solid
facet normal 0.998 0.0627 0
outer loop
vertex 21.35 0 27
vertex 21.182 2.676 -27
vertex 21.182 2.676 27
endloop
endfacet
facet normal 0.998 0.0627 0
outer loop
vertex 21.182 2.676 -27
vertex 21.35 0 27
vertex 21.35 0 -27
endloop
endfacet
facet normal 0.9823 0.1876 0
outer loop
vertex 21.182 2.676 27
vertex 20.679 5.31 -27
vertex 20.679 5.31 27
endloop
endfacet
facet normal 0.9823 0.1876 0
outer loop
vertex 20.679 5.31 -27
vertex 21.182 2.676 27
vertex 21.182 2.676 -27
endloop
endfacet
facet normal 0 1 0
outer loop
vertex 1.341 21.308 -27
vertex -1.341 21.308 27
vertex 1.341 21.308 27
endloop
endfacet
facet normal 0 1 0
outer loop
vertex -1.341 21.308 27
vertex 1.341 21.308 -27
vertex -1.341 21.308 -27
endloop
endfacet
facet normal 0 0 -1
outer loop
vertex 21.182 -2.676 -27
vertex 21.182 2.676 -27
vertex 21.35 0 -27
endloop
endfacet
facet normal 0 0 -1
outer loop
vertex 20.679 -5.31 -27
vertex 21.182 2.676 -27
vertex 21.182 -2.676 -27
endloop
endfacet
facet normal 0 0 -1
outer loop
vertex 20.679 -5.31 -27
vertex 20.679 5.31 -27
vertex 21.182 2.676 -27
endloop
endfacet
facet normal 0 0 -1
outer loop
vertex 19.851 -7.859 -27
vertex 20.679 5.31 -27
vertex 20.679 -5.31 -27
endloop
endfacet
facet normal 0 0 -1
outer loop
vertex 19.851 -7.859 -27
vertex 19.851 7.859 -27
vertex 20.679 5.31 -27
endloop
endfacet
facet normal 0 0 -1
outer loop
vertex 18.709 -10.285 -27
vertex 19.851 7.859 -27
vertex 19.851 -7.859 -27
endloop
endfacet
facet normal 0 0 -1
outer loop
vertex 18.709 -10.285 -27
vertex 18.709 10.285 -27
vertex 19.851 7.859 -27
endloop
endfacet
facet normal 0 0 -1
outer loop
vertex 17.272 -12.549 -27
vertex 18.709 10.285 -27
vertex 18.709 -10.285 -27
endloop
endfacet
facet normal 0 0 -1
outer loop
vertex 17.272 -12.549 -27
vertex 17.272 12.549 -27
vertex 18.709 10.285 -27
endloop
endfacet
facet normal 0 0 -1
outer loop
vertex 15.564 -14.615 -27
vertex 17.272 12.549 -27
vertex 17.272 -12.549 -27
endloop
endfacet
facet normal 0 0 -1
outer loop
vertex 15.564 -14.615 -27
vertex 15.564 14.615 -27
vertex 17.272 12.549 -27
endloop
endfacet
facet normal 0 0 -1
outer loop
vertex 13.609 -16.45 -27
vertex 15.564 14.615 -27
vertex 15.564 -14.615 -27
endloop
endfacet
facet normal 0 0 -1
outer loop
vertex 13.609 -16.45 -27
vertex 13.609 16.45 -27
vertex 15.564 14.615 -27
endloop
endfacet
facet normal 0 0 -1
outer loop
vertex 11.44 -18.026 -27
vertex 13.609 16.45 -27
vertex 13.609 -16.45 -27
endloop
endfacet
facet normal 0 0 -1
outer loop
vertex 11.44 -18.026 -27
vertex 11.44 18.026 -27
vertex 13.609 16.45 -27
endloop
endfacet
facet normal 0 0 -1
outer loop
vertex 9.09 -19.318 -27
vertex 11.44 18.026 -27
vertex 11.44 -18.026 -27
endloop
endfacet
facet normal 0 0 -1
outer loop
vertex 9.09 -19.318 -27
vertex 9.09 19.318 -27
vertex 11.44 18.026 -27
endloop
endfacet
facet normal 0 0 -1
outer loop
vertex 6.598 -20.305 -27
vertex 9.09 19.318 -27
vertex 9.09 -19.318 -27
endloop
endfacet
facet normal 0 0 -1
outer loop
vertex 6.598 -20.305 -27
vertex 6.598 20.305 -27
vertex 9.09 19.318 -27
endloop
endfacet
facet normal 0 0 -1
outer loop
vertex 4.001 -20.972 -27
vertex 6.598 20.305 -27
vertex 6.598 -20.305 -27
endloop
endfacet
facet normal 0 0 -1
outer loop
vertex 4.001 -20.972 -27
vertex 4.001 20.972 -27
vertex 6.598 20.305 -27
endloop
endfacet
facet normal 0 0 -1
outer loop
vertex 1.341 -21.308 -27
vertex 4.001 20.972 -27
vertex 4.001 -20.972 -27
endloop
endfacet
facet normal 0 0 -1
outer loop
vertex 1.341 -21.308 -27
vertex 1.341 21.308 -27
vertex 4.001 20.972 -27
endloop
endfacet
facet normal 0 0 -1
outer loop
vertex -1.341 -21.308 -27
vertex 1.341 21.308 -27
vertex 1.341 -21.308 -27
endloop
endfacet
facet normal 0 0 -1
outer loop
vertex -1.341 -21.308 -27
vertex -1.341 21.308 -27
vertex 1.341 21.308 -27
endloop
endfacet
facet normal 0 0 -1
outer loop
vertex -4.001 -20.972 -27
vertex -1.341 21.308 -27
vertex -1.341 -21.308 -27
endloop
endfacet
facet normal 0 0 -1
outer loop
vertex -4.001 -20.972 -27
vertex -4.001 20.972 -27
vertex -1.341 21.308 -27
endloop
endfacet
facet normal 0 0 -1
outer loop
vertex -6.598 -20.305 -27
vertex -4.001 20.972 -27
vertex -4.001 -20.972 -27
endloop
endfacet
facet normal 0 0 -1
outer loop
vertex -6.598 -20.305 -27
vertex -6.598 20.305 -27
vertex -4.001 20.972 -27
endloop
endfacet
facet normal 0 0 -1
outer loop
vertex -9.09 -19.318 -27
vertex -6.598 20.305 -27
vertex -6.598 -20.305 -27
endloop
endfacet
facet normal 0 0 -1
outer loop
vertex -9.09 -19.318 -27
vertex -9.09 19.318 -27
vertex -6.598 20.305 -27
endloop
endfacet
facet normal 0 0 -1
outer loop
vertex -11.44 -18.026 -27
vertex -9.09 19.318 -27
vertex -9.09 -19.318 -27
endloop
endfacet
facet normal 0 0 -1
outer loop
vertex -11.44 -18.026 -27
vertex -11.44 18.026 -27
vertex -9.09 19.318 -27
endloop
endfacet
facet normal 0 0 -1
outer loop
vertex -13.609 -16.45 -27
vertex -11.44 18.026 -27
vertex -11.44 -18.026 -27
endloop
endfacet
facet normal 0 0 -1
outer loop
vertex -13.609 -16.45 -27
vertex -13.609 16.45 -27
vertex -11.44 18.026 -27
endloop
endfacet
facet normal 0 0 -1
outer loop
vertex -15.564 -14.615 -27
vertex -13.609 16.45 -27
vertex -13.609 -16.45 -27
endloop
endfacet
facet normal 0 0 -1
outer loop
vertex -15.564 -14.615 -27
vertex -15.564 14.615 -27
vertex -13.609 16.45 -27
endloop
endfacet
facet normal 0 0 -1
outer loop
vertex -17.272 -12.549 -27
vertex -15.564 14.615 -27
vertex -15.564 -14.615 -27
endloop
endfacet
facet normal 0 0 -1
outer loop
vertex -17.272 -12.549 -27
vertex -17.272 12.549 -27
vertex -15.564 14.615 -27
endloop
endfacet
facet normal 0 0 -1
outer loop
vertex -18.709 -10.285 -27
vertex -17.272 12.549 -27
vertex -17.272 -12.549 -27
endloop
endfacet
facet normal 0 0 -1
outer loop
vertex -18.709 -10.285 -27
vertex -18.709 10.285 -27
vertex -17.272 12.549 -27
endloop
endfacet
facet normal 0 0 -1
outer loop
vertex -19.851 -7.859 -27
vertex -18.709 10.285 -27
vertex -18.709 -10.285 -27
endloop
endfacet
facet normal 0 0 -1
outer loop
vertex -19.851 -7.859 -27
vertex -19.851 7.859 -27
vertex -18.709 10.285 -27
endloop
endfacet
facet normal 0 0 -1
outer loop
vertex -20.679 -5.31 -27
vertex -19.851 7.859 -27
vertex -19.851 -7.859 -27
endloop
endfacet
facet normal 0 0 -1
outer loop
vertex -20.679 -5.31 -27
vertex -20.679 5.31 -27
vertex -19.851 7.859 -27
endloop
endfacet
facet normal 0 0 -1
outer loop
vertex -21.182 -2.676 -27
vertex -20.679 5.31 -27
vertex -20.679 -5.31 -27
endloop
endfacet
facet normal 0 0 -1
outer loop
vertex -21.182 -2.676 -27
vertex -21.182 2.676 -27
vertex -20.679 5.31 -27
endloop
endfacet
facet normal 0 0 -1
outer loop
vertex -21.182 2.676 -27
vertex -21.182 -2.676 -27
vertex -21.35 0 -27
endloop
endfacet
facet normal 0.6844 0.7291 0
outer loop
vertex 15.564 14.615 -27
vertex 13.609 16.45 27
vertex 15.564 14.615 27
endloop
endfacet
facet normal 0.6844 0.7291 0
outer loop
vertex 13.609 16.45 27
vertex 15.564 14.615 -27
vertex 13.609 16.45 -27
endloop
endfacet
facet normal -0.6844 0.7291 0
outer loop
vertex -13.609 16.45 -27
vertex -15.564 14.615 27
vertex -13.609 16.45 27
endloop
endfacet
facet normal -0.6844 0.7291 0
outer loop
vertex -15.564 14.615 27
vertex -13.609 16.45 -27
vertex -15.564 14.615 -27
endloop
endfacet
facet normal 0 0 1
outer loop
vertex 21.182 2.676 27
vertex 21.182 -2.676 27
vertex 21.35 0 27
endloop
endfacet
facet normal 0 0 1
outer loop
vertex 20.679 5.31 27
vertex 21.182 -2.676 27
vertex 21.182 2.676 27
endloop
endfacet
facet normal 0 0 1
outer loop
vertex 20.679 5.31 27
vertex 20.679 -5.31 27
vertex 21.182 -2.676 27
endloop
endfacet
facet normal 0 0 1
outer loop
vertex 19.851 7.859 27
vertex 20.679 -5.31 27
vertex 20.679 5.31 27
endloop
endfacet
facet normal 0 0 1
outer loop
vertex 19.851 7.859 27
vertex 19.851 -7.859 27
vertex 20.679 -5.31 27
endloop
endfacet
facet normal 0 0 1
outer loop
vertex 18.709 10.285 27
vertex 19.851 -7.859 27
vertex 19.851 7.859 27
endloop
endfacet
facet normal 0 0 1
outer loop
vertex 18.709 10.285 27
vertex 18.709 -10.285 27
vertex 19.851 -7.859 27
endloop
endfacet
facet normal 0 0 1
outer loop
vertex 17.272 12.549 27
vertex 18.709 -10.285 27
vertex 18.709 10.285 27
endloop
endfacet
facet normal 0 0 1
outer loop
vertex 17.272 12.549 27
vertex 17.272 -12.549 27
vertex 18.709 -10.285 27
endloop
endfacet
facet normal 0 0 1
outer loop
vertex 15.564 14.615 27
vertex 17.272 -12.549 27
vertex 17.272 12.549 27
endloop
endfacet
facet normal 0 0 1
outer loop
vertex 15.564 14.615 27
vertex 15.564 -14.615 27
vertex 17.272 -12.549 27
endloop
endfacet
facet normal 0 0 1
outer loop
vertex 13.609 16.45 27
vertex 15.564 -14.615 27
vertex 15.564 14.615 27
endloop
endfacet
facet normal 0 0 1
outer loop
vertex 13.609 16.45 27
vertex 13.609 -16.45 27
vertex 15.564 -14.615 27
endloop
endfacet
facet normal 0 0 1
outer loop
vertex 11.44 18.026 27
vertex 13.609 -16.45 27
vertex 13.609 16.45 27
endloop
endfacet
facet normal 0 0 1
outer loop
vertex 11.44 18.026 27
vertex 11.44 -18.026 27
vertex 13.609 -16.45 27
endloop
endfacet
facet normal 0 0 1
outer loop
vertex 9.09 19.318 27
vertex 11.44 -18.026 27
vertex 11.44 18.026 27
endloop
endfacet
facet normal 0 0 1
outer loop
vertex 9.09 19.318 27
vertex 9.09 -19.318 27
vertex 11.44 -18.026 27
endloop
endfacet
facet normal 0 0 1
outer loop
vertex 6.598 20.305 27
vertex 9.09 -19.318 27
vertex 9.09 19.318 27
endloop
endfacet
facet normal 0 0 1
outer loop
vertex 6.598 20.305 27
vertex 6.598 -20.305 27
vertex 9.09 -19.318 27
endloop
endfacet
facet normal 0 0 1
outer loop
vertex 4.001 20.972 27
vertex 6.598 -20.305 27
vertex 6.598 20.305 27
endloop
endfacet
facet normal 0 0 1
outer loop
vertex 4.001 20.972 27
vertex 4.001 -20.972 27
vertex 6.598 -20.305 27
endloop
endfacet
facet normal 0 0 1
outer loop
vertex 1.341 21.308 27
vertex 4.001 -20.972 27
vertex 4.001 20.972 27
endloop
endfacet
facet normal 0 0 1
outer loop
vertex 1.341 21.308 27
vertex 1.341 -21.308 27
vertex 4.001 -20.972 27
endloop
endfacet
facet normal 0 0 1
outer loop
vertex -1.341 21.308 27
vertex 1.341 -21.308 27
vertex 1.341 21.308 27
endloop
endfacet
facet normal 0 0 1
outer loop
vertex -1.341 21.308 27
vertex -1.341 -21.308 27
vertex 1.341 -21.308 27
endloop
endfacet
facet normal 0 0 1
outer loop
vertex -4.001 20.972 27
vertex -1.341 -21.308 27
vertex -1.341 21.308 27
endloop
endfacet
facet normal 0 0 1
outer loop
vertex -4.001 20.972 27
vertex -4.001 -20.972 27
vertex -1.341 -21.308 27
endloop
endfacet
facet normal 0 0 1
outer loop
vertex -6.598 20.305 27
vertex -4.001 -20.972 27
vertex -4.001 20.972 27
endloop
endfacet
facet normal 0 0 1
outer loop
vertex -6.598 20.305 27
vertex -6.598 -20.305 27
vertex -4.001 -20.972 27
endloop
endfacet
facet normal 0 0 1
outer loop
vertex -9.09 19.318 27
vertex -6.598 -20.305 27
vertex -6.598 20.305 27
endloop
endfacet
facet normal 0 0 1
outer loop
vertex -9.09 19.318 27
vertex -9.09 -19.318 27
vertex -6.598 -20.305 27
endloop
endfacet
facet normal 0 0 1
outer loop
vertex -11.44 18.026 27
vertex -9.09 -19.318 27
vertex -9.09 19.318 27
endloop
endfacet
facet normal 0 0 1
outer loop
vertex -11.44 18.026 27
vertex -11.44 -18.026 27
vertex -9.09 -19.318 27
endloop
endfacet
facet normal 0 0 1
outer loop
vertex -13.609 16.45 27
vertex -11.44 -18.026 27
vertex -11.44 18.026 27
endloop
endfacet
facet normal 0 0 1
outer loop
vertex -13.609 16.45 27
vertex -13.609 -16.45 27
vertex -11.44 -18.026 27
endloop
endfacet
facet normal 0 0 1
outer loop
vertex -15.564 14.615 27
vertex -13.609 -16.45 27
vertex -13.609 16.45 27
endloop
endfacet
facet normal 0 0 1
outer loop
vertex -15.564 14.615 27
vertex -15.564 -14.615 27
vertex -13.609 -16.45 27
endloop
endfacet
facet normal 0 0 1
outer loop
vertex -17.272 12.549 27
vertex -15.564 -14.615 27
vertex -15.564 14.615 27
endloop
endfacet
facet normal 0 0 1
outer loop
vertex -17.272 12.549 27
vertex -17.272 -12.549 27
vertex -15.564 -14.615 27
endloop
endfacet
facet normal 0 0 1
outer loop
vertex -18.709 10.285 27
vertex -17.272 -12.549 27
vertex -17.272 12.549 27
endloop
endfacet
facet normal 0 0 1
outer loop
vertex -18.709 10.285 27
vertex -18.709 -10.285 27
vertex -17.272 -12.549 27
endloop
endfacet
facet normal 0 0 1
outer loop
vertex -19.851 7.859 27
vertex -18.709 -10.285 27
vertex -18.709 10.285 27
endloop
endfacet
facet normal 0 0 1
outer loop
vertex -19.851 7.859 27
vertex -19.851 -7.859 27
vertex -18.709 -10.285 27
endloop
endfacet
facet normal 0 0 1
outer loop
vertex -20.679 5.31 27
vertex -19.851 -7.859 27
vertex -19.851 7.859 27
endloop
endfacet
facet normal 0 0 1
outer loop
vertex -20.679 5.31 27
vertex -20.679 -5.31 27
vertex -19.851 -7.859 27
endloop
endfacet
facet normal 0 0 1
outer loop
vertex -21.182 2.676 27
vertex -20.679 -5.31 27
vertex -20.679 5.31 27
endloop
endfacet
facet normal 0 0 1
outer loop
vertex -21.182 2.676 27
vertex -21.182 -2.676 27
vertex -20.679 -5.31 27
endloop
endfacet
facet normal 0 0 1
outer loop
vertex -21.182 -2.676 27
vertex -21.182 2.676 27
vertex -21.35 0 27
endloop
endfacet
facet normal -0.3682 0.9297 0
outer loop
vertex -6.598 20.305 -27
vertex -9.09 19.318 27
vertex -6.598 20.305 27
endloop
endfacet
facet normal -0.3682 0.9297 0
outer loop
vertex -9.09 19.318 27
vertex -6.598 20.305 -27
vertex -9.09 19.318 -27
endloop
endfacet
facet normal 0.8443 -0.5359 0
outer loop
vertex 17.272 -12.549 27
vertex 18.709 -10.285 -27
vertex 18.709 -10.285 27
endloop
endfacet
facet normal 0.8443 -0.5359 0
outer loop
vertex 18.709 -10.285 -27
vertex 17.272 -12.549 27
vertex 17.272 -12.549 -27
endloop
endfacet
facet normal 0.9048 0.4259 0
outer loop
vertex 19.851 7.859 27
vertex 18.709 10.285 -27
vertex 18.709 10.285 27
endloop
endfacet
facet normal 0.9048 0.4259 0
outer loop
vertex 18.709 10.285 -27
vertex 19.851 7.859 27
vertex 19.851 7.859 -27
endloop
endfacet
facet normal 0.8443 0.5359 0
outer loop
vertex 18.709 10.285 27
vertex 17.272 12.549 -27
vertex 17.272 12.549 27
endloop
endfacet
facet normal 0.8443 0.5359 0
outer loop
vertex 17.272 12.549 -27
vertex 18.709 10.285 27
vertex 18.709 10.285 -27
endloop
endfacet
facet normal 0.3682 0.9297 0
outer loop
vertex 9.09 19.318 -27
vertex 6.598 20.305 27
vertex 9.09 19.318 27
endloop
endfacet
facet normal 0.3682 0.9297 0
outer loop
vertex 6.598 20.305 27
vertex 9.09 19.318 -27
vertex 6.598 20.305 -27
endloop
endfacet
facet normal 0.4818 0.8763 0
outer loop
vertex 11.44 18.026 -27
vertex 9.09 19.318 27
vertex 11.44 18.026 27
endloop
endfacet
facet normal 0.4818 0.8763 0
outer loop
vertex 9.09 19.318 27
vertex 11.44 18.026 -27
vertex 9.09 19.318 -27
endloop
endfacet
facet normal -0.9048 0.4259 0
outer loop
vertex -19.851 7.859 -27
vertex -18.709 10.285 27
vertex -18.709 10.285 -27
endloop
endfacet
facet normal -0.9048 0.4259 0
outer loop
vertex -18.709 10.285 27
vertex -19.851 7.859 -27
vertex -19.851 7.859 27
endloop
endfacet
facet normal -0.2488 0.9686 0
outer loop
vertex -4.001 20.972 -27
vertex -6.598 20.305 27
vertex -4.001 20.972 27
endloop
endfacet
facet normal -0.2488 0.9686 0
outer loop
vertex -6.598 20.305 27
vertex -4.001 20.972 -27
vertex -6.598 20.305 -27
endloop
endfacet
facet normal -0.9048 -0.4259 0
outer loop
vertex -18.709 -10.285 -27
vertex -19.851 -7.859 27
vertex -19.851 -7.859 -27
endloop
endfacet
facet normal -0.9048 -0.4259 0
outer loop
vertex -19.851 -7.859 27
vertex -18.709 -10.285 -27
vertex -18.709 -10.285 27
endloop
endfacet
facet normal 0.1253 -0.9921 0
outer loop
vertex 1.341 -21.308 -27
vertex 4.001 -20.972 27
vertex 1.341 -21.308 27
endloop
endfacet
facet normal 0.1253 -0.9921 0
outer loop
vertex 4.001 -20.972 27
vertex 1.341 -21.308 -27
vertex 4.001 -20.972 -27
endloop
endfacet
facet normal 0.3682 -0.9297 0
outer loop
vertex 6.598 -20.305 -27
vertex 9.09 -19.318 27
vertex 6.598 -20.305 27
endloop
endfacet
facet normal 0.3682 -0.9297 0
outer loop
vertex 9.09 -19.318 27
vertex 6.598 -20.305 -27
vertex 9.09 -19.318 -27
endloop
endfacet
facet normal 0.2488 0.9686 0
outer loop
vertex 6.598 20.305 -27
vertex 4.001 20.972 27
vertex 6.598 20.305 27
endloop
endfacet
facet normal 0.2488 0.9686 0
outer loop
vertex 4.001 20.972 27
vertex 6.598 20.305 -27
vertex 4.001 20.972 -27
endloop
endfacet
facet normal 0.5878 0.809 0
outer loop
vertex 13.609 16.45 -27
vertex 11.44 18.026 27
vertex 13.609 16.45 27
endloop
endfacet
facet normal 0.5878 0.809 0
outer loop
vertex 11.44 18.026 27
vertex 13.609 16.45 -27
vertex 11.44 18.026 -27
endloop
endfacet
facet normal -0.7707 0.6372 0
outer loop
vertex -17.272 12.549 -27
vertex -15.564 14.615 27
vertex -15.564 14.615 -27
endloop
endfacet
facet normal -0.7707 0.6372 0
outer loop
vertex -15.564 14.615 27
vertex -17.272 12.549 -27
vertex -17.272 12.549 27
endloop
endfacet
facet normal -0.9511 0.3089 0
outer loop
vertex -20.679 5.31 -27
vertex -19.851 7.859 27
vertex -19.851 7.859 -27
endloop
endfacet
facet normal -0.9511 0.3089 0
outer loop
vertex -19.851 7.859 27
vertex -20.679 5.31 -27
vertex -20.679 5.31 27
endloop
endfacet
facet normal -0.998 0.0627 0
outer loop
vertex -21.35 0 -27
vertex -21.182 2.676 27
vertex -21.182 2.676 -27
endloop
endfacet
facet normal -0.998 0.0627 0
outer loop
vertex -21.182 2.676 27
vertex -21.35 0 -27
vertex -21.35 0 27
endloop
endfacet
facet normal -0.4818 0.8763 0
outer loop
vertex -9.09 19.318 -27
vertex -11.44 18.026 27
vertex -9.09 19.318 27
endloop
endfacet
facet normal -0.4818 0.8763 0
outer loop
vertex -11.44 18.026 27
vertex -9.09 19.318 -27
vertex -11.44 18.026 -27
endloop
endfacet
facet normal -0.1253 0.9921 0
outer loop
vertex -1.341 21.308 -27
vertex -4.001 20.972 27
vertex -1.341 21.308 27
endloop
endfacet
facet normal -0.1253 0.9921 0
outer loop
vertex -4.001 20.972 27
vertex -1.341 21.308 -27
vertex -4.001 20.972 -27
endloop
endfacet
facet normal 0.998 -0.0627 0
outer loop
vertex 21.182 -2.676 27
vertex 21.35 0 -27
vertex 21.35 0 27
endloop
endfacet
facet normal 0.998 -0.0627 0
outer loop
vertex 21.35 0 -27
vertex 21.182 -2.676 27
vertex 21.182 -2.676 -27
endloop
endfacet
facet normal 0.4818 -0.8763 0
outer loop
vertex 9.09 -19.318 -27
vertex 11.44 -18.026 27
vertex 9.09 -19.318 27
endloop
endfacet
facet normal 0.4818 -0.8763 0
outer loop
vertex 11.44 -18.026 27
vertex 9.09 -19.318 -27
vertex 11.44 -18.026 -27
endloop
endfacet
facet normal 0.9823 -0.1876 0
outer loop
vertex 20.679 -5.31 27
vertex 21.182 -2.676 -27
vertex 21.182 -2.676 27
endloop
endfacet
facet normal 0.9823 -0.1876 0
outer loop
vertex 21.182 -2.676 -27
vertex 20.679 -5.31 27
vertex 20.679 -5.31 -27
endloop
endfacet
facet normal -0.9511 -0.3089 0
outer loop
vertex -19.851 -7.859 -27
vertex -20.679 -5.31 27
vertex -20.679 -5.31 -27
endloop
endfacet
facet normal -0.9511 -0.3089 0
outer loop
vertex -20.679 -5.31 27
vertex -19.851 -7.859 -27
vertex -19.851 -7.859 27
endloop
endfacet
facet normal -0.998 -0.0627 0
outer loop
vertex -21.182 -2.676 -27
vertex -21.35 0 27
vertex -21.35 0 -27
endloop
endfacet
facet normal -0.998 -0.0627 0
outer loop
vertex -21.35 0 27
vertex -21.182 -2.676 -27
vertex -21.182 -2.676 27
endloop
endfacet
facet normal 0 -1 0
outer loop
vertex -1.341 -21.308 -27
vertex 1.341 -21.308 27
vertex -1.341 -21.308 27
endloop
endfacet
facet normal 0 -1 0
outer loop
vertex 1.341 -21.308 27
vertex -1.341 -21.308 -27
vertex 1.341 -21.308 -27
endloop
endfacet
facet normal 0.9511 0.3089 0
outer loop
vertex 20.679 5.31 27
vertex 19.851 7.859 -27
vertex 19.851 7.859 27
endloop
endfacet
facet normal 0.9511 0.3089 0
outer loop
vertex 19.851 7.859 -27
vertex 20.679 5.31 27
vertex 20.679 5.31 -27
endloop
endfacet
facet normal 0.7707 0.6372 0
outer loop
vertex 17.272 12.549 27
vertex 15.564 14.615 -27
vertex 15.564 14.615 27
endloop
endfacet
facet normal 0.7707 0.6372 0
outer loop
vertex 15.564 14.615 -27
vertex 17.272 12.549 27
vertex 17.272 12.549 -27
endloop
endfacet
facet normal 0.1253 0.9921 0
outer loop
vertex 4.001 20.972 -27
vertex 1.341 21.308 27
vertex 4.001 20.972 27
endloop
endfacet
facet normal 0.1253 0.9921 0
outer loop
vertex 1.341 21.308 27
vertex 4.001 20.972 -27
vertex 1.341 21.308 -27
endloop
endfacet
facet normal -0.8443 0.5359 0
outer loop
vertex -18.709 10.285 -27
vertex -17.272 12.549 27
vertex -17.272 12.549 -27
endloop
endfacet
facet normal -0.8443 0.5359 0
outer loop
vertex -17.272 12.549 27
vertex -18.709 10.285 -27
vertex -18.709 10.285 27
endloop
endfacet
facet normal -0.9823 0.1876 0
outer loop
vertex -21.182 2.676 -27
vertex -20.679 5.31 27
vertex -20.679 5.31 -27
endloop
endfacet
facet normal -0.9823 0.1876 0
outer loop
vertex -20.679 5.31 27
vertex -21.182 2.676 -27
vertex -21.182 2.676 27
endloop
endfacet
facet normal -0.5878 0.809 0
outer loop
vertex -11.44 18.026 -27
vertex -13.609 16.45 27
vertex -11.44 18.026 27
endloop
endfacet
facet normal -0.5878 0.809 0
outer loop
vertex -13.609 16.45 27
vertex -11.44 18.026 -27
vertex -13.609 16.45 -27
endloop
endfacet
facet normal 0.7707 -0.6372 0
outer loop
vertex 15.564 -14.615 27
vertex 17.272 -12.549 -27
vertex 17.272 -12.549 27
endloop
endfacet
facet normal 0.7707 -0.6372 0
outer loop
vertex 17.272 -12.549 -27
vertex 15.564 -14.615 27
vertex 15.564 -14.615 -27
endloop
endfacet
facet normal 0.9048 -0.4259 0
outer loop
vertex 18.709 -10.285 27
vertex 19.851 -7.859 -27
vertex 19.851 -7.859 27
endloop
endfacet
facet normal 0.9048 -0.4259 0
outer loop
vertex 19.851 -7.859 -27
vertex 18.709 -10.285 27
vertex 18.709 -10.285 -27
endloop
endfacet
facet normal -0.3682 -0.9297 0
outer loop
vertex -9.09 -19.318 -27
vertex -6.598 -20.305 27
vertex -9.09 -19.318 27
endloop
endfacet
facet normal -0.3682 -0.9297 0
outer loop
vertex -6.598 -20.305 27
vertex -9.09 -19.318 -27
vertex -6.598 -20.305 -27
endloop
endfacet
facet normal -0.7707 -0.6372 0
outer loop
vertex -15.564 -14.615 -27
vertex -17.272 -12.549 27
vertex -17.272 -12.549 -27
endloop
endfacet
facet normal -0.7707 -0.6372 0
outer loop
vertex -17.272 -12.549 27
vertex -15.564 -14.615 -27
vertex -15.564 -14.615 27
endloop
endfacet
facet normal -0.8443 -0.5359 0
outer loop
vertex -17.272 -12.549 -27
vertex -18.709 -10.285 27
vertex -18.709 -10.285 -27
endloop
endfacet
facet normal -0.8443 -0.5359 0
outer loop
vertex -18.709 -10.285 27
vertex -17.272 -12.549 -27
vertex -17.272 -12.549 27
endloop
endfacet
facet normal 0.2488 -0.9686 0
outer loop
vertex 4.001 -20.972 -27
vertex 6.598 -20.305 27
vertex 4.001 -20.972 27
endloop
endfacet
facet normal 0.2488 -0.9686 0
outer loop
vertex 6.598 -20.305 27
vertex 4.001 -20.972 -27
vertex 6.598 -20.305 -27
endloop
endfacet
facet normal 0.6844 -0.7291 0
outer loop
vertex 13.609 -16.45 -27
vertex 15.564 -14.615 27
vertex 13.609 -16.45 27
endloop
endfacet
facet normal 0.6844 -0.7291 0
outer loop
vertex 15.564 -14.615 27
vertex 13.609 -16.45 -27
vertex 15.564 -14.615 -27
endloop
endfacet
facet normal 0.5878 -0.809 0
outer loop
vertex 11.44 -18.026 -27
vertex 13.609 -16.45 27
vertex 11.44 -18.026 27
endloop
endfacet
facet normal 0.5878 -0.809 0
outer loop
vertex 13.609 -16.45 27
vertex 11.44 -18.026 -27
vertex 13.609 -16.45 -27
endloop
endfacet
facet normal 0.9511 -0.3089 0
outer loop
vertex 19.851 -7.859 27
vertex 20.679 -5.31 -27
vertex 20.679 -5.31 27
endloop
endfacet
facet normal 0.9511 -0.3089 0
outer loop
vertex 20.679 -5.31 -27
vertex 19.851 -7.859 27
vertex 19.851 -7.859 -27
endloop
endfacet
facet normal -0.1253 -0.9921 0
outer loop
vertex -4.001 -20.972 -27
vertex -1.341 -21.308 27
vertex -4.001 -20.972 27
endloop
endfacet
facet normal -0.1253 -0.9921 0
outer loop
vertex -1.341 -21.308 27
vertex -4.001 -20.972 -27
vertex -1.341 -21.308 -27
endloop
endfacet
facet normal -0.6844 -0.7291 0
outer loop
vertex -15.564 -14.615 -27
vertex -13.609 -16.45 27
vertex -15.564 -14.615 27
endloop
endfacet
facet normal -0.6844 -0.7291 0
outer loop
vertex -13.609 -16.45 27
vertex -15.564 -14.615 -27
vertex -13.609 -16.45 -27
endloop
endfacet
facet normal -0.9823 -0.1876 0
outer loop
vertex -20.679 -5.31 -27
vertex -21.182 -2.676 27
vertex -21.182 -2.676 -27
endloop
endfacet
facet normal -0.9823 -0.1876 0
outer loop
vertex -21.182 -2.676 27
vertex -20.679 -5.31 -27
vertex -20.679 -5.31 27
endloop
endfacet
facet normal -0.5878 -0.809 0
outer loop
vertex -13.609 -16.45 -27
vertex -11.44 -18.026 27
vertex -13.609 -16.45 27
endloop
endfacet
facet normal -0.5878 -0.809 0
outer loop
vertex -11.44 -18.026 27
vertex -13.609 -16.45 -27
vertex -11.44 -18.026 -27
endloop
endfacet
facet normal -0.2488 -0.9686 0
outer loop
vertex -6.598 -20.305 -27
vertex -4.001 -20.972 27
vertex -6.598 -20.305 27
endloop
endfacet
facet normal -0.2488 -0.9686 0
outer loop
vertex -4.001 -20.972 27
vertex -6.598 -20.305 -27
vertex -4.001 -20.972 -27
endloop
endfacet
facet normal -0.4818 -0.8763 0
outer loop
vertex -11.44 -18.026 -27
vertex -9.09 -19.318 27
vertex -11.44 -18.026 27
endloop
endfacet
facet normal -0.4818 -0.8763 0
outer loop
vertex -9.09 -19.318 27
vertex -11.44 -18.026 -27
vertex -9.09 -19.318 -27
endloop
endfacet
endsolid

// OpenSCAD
$fn = 50;


difference() {
	union() {
		translate(v = [0, 0, -27.0000000000]) {
			cylinder(h = 54, r = 21.3500000000);
		}
	}
	union() {
		translate(v = [0, 0, -100.0000000000]) {
			cylinder(h = 200, r = 0);
		}
	}
}
